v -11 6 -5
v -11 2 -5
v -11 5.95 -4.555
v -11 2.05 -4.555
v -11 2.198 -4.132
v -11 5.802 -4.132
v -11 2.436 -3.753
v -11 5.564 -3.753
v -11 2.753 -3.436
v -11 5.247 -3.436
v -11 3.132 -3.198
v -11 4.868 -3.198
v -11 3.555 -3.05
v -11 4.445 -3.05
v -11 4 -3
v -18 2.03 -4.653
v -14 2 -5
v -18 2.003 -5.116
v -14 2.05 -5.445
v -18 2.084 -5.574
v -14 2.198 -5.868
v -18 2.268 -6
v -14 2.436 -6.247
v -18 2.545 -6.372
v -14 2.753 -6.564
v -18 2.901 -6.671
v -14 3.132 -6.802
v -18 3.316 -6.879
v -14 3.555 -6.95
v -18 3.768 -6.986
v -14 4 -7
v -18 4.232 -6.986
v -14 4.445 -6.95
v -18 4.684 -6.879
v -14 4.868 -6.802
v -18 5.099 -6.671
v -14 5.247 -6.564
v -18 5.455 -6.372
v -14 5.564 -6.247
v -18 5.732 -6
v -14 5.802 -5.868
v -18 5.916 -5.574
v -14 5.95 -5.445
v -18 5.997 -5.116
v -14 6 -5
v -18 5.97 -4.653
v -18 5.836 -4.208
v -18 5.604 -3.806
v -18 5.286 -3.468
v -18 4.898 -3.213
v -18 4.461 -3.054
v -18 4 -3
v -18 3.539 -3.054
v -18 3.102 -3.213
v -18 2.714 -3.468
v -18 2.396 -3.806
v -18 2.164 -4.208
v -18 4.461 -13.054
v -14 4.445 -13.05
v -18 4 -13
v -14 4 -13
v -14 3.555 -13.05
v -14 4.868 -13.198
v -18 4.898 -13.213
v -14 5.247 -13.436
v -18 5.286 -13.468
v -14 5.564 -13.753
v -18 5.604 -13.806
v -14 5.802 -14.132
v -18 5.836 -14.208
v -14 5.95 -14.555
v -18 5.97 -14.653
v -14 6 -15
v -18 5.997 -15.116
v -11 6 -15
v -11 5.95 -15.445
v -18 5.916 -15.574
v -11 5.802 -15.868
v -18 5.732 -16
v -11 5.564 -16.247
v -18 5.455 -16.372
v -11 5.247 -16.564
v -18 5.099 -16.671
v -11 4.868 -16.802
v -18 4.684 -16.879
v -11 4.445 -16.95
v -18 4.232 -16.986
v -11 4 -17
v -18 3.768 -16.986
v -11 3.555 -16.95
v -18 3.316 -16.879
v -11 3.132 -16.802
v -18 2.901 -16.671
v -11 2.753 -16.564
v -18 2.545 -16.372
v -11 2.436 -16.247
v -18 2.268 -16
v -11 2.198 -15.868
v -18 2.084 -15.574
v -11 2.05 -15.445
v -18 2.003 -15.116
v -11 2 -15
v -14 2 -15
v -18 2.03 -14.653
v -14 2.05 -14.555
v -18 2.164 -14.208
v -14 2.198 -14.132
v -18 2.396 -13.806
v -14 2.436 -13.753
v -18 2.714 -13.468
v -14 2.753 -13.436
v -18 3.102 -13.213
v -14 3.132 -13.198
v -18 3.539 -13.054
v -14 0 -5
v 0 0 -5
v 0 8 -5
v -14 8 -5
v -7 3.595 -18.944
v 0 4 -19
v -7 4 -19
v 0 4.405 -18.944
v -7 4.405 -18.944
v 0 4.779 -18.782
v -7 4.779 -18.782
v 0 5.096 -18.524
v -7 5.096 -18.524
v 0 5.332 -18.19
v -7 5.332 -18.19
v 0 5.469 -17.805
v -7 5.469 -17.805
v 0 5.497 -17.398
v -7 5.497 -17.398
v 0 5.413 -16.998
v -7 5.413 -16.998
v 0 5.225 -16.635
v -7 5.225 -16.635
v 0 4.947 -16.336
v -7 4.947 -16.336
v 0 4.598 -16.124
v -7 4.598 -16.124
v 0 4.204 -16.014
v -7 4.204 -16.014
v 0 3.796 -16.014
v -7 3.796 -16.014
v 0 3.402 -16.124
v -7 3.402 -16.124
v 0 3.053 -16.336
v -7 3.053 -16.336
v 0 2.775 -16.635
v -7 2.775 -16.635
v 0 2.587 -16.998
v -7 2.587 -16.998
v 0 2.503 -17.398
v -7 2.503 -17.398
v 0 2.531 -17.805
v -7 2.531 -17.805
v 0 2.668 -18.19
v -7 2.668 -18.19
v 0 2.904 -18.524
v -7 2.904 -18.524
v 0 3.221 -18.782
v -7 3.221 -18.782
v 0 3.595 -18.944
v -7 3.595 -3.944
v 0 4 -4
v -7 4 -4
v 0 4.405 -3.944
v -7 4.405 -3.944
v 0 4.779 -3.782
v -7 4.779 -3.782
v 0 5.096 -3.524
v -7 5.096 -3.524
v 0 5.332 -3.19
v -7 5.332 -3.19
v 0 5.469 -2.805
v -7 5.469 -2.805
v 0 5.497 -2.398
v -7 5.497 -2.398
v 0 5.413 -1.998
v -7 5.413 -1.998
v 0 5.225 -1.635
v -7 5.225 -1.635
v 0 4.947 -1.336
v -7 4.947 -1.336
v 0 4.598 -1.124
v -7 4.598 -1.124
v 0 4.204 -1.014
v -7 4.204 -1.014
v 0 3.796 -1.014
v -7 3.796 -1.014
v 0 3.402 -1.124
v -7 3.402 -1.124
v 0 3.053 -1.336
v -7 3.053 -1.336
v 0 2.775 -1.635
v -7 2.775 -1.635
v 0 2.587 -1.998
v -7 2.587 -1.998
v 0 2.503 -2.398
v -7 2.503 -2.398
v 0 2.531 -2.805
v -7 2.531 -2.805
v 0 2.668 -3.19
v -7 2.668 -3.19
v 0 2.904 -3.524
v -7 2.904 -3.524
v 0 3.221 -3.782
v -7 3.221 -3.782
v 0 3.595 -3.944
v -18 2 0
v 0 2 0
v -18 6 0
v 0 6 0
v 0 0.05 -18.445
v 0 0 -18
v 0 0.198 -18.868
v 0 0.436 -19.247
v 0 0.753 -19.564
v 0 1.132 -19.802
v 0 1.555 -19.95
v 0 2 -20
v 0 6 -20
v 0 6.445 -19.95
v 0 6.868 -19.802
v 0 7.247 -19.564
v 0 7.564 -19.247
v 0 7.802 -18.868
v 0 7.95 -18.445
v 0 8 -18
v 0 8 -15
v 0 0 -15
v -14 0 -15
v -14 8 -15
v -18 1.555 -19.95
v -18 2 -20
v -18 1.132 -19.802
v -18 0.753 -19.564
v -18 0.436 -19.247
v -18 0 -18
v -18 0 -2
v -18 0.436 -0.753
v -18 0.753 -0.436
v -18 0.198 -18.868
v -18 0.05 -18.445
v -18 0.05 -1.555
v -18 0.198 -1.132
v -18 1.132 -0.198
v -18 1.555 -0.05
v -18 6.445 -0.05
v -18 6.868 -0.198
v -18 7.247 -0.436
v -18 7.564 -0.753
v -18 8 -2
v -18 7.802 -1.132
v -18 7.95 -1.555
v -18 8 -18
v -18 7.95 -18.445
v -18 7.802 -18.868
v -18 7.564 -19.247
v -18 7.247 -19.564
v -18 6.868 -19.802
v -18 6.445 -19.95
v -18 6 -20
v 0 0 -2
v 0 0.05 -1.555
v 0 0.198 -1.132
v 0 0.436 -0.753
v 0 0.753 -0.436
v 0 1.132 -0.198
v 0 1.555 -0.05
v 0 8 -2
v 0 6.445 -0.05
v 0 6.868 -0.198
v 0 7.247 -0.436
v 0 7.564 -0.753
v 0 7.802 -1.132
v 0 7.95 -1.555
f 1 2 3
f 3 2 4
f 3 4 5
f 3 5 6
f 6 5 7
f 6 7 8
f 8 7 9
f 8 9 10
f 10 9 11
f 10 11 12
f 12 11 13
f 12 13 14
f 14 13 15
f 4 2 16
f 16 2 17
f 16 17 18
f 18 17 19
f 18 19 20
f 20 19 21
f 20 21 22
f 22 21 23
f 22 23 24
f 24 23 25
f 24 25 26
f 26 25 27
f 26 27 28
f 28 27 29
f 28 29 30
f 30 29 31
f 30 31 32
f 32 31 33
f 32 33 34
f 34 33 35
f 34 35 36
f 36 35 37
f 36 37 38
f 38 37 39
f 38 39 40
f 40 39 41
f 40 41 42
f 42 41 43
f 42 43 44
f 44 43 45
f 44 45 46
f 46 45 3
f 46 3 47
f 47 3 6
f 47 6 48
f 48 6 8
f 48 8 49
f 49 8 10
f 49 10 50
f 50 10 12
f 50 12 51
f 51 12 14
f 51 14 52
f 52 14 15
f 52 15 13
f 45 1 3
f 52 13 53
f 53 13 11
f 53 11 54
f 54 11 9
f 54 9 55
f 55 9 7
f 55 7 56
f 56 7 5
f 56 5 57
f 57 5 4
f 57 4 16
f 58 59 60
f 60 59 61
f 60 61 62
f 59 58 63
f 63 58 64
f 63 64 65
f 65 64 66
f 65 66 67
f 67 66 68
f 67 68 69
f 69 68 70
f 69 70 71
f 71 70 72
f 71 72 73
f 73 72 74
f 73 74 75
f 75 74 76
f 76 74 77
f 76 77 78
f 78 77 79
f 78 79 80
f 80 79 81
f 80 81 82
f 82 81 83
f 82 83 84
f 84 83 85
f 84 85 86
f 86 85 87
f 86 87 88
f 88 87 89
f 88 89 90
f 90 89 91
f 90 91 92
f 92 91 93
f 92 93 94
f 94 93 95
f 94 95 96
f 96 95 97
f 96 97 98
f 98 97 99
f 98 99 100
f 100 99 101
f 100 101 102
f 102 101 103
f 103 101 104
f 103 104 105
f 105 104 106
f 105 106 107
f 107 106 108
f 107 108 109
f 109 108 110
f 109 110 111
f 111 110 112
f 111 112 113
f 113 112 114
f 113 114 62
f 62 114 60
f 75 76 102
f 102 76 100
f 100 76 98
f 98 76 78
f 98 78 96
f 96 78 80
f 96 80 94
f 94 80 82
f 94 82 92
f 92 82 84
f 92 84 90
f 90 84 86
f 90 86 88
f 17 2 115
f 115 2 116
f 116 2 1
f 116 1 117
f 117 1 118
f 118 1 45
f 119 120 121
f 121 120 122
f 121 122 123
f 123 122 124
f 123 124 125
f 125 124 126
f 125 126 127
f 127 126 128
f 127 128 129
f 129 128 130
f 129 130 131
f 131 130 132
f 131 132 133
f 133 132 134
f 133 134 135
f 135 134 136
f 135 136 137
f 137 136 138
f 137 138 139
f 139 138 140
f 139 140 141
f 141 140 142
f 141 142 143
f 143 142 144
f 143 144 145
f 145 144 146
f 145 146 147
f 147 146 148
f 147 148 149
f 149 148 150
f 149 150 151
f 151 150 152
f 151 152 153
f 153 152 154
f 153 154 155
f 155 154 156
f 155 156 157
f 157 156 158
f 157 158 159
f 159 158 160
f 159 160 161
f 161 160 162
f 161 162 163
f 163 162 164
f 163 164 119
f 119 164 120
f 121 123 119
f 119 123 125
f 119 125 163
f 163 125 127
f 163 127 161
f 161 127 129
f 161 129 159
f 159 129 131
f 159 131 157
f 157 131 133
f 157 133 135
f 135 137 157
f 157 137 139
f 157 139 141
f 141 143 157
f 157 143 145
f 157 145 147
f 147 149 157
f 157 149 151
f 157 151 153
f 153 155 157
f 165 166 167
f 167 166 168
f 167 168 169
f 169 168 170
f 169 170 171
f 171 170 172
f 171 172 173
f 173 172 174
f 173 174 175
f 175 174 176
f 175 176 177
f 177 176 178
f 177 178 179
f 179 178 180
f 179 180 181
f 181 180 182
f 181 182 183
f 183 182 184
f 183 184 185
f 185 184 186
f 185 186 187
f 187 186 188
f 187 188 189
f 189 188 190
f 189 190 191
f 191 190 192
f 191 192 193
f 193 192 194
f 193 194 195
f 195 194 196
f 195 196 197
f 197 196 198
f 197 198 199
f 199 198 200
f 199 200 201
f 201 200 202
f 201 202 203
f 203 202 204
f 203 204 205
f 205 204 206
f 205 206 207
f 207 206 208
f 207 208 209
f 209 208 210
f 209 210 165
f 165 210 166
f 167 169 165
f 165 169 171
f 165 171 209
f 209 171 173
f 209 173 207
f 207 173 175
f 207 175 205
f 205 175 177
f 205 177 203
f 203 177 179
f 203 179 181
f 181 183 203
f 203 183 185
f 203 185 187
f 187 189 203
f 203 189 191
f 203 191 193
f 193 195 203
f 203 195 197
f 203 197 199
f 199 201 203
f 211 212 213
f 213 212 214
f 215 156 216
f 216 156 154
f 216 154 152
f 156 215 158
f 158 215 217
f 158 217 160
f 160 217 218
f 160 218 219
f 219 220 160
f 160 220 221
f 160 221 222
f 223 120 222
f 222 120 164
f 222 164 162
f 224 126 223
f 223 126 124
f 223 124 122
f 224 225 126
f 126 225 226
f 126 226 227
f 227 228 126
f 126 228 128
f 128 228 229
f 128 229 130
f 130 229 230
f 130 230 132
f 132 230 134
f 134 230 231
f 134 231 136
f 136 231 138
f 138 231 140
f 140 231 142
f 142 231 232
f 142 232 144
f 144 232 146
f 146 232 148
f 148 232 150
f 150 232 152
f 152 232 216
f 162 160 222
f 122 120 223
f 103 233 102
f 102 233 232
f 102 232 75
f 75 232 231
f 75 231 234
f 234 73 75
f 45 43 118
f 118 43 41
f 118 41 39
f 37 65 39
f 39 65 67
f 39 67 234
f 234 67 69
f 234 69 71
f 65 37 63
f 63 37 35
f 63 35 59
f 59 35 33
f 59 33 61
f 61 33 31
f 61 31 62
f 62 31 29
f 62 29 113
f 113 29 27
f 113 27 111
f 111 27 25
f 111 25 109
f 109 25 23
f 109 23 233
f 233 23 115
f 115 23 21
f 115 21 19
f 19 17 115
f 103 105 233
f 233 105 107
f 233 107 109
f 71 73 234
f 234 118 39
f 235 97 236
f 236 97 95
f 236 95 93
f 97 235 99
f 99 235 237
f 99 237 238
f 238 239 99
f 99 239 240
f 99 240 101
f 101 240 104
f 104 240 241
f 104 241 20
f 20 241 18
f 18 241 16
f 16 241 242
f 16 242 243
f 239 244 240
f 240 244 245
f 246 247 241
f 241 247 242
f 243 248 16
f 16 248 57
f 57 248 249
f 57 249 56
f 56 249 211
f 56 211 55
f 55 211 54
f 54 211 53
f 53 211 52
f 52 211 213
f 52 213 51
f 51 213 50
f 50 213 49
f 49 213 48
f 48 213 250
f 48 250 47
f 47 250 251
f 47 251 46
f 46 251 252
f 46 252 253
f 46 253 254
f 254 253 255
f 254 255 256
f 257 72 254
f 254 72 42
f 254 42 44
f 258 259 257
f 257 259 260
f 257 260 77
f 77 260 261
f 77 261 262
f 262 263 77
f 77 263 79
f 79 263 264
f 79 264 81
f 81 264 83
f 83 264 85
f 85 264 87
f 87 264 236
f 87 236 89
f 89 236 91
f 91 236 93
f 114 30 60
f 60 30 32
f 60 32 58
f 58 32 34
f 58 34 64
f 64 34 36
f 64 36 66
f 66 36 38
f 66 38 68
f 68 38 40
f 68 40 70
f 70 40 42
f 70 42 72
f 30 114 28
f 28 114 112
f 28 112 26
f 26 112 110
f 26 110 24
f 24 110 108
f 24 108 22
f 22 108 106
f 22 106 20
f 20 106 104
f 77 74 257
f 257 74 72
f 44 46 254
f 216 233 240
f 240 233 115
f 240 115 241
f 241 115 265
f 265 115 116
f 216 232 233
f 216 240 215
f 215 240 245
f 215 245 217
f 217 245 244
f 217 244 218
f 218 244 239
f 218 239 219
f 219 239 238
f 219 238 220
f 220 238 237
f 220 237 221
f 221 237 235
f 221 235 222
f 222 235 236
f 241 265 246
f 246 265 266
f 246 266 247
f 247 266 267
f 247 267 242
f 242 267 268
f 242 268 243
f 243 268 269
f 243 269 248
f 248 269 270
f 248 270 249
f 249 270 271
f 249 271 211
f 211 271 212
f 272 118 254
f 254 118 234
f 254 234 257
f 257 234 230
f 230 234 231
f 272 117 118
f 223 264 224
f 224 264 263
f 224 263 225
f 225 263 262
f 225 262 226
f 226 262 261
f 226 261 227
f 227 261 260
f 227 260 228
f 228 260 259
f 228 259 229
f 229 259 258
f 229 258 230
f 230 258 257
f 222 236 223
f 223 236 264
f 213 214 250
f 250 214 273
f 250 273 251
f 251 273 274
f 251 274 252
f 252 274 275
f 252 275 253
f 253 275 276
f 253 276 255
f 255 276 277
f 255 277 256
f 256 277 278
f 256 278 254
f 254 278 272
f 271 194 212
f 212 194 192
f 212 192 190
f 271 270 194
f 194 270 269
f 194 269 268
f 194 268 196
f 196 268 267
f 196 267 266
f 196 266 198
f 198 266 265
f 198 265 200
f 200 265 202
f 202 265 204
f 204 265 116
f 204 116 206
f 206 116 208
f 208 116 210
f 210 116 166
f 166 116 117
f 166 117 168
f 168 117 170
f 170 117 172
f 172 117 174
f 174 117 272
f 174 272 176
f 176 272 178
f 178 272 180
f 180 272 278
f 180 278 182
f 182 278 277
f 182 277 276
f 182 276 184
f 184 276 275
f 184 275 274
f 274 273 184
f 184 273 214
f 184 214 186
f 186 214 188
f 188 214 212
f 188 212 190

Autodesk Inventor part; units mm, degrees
ref_plane "YZ Plane" through (0, 0, 0) normal (1, 0, 0) x (0, 1, 0)
ref_plane "XZ Plane" through (0, 0, 0) normal (0, 1, 0) x (-1, 0, 0)
ref_plane "XY Plane" through (0, 0, 0) normal (0, 0, 1) x (1, 0, 0)
sketch "Sketch1" plane through (0, 0, 0) normal (0, 1, 0) x (-1, 0, 0)
  line L0 (0, 0) -> (18, 0)
  line L1 (18, 0) -> (18, -20)
  line L2 (18, -20) -> (0, -20)
  line L3 (0, -20) -> (0, 0)
  line L4 (0, 0) -> (0, -5)
  line L5 (0, -5) -> (14, -5)
  line L6 (14, -5) -> (14, -15)
  line L7 (14, -15) -> (0, -15)
  line L8 (0, -15) -> (0, -5)
  dimension "d0" = 18
  dimension "d1" = 20
  dimension "d2" = 5
  dimension "d3" = 14
  dimension "d4" = 10
extrude "Extrusion1" add sketch "Sketch1" along normal blind 8 contours L0 L1 L2 L3 L7 L6 L5
sketch "Sketch2" plane through (0, 0, 0) normal (1, 0, 0) x (0, 0, -1)
  line L0 (20, 8) -> (0, 8) projected
  line L1 (0, 8) -> (2.5, 8)
  line L2 (2.5, 8) -> (2.5, 4)
  line L3 (2.5, 4) -> (0, 4)
  line L4 (0, 4) -> (0, 8)
  line L5 (20, 0) -> (20, 8) projected
  line L6 (20, 8) -> (17.5, 8)
  line L7 (17.5, 8) -> (17.5, 4)
  line L8 (17.5, 4) -> (20, 4)
  line L9 (20, 4) -> (20, 8)
  circle A0 centre (2.5, 4) radius 1.5
  circle A1 centre (17.5, 4) radius 1.5
  point P0 (0, 0)
  dimension "d7" = 2.5
  dimension "d8" = 4
  dimension "d9" = 2.5
  dimension "d10" = 4
  dimension "d11" = 3
  dimension "d12" = 3
extrude "Extrusion2" cut sketch "Sketch2" against normal blind 7 contours A1 L8 L7 | L7 L8 A1 | A0 L3 L2 | L2 L3 A0
sketch "Sketch3" plane through (-18, 0, -20) normal (-1, 0, 0) x (0, 0, 1)
  line L0 (0, 0) -> (0, 8) projected
  line L1 (0, 0) -> (5, 0)
  line L2 (5, 0) -> (5, 4)
  line L3 (5, 4) -> (0, 4)
  line L4 (0, 4) -> (0, 0)
  line L5 (5, 4) -> (15, 4)
  circle A0 centre (5, 4) radius 2
  circle A1 centre (15, 4) radius 2
  point P0 (20, 0)
  dimension "d15" = 5
  dimension "d16" = 4
  dimension "d17" = 10
  dimension "d18" = 4
  dimension "d19" = 4
extrude "Extrusion3" cut sketch "Sketch3" against normal blind 7 contours A1 | A0 L5 L3 | L3 L2 A0 | L2 L5 A0
fillet "Fillet1" radius 2 4 edges at (-9, 8, -20) (-9, 8, 0) (-9, 0, 0) (-9, 0, -20)
properties part number "servo_support_4"
